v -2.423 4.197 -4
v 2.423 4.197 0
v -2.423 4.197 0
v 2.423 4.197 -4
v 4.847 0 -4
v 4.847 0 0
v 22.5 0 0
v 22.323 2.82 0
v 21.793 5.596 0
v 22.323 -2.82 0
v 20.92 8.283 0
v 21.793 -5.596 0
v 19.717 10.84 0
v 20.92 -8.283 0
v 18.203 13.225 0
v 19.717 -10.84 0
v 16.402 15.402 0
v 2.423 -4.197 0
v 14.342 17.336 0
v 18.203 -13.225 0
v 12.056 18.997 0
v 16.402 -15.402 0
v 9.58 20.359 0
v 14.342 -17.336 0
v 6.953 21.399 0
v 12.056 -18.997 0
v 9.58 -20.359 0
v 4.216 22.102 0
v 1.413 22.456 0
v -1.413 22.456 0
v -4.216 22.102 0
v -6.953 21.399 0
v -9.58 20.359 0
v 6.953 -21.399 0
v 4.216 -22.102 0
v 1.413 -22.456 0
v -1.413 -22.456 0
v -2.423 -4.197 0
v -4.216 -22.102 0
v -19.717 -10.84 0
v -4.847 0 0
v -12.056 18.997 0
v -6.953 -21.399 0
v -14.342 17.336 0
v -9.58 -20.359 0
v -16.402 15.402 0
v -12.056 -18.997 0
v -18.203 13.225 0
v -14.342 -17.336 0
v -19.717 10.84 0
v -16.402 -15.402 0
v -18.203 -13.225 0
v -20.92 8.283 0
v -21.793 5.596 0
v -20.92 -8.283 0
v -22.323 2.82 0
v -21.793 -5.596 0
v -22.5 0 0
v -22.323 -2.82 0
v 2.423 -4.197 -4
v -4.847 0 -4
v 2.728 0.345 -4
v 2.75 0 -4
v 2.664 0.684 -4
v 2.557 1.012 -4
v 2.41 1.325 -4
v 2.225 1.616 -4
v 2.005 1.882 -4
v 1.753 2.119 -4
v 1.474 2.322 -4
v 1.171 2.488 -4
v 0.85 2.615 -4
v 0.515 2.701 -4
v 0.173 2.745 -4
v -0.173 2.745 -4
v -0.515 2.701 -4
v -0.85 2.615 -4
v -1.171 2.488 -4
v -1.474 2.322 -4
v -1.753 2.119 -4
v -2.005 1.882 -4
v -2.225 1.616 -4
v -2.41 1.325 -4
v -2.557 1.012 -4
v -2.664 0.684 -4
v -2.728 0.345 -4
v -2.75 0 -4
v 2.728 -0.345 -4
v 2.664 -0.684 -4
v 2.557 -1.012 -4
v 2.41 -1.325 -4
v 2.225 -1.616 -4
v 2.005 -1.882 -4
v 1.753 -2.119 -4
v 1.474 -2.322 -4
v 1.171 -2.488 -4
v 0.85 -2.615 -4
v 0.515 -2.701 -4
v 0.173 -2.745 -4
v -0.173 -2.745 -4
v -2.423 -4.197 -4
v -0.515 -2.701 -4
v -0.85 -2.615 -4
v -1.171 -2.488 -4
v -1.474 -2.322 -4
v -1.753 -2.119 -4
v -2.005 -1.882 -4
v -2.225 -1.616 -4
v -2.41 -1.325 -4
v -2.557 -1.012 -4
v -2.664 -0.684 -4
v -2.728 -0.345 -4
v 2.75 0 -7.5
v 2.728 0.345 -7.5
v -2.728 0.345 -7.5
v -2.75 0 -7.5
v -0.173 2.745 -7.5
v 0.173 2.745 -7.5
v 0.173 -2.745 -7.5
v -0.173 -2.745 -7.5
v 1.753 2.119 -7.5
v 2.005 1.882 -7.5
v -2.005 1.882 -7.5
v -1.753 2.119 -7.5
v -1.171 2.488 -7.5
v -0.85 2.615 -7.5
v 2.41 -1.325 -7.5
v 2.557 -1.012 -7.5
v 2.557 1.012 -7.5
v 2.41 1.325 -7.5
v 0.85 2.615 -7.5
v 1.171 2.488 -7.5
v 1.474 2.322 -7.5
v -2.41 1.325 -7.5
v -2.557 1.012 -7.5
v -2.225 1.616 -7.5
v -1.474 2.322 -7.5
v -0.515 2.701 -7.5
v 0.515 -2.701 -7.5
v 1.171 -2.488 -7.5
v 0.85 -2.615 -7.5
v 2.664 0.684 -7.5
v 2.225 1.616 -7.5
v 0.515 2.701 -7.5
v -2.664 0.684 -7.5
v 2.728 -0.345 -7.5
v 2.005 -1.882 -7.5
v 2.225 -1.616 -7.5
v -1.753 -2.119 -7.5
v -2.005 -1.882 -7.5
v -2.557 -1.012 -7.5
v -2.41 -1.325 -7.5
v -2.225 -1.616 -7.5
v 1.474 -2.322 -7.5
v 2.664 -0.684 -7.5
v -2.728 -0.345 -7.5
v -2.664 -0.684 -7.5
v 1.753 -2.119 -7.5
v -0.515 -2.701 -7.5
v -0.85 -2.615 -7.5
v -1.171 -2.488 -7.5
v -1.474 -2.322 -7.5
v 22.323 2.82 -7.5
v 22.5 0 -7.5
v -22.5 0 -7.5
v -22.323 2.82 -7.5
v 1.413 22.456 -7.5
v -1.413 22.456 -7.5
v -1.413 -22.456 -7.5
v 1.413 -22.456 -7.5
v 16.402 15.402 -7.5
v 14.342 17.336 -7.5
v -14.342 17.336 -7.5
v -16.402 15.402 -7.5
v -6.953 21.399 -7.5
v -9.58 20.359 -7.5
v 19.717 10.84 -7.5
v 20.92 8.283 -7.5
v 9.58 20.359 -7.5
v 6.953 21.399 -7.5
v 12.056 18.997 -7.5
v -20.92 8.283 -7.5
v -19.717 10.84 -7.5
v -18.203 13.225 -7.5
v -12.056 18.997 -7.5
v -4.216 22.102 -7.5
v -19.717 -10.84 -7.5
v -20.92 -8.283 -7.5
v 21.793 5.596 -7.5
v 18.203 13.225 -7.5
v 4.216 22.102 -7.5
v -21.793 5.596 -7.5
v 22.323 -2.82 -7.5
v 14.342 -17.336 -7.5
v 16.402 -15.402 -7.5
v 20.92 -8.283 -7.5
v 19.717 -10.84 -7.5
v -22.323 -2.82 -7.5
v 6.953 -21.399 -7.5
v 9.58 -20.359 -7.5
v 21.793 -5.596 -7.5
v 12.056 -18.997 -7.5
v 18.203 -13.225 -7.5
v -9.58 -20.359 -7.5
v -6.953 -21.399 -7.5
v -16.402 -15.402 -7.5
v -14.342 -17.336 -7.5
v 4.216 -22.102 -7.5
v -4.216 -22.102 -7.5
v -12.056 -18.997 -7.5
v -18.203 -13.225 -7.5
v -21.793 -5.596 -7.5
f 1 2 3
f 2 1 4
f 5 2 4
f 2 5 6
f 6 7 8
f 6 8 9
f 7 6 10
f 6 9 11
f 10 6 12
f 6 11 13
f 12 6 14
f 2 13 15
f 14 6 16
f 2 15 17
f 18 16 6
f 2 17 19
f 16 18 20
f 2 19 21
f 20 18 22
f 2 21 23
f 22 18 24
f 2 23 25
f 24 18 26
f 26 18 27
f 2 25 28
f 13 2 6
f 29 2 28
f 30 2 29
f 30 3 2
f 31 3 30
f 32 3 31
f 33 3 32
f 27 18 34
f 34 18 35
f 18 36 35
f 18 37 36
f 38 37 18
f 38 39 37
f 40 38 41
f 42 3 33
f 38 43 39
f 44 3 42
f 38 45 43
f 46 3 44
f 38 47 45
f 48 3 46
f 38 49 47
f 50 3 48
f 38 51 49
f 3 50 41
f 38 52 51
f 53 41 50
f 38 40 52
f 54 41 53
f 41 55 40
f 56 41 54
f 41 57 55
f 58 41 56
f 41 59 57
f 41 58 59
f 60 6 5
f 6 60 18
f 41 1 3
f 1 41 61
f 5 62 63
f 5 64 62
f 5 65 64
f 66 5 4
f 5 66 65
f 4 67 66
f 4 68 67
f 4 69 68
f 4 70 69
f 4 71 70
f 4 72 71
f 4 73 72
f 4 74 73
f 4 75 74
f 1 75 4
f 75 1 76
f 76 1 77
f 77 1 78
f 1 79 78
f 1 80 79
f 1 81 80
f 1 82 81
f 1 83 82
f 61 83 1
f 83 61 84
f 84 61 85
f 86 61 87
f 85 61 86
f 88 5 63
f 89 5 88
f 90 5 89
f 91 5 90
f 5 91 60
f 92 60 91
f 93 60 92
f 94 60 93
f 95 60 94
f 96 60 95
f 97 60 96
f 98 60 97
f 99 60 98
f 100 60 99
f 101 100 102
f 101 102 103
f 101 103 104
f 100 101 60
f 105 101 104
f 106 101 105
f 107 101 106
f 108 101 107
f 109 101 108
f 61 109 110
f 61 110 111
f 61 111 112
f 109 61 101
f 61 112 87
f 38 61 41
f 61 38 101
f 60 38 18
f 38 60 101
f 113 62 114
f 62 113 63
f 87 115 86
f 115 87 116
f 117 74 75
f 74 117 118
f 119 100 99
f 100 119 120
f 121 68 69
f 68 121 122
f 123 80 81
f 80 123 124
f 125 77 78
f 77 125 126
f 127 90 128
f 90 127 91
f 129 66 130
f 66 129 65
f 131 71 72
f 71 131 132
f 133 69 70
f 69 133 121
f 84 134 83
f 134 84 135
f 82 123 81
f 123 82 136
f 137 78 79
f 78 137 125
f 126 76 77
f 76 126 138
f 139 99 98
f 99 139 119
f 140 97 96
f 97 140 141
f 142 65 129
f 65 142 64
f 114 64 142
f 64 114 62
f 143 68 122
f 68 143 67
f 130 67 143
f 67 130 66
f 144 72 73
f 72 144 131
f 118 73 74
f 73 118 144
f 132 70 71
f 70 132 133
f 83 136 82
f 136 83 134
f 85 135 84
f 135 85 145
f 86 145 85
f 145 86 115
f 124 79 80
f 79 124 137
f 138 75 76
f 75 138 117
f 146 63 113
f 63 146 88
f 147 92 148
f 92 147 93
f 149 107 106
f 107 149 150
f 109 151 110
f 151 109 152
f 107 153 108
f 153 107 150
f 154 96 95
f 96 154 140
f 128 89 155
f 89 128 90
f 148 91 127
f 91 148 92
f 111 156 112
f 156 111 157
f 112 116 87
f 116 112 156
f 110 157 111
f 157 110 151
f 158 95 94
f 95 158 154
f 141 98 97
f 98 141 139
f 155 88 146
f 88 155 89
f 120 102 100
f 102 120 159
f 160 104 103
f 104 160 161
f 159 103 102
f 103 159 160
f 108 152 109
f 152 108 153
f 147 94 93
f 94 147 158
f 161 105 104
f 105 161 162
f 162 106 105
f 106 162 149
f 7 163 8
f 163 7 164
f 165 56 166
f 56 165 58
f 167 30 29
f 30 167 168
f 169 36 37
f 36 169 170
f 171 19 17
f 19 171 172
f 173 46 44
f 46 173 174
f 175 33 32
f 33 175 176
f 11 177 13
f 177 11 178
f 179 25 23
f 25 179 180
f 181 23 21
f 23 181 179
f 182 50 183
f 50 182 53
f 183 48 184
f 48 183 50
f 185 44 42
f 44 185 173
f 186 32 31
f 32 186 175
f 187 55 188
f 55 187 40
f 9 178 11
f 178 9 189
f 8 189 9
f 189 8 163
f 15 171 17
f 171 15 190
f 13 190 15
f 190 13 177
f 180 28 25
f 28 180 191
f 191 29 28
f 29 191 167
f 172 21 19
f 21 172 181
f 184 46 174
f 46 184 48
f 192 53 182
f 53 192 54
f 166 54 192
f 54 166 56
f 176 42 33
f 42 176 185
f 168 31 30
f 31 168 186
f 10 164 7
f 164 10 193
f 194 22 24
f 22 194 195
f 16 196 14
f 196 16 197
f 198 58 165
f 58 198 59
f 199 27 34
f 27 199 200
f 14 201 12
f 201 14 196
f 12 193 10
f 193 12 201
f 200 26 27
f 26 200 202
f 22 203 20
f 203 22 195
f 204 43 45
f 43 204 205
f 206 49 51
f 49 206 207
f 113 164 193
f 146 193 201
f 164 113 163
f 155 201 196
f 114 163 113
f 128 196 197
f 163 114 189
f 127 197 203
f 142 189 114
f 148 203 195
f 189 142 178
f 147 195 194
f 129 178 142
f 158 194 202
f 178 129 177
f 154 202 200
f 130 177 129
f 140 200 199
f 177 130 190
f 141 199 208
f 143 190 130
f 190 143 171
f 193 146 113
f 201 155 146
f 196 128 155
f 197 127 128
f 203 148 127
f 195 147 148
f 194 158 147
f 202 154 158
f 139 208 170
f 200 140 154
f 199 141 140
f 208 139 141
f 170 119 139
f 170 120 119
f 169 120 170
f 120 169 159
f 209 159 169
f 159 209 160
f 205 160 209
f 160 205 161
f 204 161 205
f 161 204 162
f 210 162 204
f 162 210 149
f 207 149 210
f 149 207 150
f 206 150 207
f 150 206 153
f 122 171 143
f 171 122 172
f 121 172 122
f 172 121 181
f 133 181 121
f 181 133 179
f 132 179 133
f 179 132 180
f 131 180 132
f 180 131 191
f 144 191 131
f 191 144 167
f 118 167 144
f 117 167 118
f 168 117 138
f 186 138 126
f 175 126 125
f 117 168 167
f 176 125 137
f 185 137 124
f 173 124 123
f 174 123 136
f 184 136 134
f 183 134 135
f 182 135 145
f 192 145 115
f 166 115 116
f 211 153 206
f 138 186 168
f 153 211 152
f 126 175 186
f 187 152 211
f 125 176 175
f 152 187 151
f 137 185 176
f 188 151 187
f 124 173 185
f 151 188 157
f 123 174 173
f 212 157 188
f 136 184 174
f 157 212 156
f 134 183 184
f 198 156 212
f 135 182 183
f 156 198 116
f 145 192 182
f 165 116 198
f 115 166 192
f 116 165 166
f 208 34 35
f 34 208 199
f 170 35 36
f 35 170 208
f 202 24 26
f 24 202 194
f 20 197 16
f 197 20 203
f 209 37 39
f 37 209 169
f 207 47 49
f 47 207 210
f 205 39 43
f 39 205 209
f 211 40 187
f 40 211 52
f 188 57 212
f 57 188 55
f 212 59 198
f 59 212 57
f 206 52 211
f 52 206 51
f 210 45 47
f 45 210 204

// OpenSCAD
$fn = 50;

difference() {
	union() {
		translate(v = [0, 0, -7.5]) {
			cylinder(h = 7.5, r = 22.5);
		}
	}
	union() {
		translate(v = [0, 0, 0]) {
			rotate(a = [0, 0, 0]) {
				difference() {
					union() {
						translate(v = [0, 0, -4]) {
							linear_extrude(height = 4) {
								polygon(points = [[4.8468, 0.0], [2.4234000000000004, 4.197451927062417], [-2.423399999999999, 4.197451927062417], [-4.8468, 5.935618106107392e-16], [-2.423400000000002, -4.197451927062416], [2.423399999999997, -4.197451927062419]]);
							}
						}
					}
					union();
				}
			}
		}
		#translate(v = [0, 0, -100.0]) {
			cylinder(h = 200, r = 2.75);
		}
	}
}
